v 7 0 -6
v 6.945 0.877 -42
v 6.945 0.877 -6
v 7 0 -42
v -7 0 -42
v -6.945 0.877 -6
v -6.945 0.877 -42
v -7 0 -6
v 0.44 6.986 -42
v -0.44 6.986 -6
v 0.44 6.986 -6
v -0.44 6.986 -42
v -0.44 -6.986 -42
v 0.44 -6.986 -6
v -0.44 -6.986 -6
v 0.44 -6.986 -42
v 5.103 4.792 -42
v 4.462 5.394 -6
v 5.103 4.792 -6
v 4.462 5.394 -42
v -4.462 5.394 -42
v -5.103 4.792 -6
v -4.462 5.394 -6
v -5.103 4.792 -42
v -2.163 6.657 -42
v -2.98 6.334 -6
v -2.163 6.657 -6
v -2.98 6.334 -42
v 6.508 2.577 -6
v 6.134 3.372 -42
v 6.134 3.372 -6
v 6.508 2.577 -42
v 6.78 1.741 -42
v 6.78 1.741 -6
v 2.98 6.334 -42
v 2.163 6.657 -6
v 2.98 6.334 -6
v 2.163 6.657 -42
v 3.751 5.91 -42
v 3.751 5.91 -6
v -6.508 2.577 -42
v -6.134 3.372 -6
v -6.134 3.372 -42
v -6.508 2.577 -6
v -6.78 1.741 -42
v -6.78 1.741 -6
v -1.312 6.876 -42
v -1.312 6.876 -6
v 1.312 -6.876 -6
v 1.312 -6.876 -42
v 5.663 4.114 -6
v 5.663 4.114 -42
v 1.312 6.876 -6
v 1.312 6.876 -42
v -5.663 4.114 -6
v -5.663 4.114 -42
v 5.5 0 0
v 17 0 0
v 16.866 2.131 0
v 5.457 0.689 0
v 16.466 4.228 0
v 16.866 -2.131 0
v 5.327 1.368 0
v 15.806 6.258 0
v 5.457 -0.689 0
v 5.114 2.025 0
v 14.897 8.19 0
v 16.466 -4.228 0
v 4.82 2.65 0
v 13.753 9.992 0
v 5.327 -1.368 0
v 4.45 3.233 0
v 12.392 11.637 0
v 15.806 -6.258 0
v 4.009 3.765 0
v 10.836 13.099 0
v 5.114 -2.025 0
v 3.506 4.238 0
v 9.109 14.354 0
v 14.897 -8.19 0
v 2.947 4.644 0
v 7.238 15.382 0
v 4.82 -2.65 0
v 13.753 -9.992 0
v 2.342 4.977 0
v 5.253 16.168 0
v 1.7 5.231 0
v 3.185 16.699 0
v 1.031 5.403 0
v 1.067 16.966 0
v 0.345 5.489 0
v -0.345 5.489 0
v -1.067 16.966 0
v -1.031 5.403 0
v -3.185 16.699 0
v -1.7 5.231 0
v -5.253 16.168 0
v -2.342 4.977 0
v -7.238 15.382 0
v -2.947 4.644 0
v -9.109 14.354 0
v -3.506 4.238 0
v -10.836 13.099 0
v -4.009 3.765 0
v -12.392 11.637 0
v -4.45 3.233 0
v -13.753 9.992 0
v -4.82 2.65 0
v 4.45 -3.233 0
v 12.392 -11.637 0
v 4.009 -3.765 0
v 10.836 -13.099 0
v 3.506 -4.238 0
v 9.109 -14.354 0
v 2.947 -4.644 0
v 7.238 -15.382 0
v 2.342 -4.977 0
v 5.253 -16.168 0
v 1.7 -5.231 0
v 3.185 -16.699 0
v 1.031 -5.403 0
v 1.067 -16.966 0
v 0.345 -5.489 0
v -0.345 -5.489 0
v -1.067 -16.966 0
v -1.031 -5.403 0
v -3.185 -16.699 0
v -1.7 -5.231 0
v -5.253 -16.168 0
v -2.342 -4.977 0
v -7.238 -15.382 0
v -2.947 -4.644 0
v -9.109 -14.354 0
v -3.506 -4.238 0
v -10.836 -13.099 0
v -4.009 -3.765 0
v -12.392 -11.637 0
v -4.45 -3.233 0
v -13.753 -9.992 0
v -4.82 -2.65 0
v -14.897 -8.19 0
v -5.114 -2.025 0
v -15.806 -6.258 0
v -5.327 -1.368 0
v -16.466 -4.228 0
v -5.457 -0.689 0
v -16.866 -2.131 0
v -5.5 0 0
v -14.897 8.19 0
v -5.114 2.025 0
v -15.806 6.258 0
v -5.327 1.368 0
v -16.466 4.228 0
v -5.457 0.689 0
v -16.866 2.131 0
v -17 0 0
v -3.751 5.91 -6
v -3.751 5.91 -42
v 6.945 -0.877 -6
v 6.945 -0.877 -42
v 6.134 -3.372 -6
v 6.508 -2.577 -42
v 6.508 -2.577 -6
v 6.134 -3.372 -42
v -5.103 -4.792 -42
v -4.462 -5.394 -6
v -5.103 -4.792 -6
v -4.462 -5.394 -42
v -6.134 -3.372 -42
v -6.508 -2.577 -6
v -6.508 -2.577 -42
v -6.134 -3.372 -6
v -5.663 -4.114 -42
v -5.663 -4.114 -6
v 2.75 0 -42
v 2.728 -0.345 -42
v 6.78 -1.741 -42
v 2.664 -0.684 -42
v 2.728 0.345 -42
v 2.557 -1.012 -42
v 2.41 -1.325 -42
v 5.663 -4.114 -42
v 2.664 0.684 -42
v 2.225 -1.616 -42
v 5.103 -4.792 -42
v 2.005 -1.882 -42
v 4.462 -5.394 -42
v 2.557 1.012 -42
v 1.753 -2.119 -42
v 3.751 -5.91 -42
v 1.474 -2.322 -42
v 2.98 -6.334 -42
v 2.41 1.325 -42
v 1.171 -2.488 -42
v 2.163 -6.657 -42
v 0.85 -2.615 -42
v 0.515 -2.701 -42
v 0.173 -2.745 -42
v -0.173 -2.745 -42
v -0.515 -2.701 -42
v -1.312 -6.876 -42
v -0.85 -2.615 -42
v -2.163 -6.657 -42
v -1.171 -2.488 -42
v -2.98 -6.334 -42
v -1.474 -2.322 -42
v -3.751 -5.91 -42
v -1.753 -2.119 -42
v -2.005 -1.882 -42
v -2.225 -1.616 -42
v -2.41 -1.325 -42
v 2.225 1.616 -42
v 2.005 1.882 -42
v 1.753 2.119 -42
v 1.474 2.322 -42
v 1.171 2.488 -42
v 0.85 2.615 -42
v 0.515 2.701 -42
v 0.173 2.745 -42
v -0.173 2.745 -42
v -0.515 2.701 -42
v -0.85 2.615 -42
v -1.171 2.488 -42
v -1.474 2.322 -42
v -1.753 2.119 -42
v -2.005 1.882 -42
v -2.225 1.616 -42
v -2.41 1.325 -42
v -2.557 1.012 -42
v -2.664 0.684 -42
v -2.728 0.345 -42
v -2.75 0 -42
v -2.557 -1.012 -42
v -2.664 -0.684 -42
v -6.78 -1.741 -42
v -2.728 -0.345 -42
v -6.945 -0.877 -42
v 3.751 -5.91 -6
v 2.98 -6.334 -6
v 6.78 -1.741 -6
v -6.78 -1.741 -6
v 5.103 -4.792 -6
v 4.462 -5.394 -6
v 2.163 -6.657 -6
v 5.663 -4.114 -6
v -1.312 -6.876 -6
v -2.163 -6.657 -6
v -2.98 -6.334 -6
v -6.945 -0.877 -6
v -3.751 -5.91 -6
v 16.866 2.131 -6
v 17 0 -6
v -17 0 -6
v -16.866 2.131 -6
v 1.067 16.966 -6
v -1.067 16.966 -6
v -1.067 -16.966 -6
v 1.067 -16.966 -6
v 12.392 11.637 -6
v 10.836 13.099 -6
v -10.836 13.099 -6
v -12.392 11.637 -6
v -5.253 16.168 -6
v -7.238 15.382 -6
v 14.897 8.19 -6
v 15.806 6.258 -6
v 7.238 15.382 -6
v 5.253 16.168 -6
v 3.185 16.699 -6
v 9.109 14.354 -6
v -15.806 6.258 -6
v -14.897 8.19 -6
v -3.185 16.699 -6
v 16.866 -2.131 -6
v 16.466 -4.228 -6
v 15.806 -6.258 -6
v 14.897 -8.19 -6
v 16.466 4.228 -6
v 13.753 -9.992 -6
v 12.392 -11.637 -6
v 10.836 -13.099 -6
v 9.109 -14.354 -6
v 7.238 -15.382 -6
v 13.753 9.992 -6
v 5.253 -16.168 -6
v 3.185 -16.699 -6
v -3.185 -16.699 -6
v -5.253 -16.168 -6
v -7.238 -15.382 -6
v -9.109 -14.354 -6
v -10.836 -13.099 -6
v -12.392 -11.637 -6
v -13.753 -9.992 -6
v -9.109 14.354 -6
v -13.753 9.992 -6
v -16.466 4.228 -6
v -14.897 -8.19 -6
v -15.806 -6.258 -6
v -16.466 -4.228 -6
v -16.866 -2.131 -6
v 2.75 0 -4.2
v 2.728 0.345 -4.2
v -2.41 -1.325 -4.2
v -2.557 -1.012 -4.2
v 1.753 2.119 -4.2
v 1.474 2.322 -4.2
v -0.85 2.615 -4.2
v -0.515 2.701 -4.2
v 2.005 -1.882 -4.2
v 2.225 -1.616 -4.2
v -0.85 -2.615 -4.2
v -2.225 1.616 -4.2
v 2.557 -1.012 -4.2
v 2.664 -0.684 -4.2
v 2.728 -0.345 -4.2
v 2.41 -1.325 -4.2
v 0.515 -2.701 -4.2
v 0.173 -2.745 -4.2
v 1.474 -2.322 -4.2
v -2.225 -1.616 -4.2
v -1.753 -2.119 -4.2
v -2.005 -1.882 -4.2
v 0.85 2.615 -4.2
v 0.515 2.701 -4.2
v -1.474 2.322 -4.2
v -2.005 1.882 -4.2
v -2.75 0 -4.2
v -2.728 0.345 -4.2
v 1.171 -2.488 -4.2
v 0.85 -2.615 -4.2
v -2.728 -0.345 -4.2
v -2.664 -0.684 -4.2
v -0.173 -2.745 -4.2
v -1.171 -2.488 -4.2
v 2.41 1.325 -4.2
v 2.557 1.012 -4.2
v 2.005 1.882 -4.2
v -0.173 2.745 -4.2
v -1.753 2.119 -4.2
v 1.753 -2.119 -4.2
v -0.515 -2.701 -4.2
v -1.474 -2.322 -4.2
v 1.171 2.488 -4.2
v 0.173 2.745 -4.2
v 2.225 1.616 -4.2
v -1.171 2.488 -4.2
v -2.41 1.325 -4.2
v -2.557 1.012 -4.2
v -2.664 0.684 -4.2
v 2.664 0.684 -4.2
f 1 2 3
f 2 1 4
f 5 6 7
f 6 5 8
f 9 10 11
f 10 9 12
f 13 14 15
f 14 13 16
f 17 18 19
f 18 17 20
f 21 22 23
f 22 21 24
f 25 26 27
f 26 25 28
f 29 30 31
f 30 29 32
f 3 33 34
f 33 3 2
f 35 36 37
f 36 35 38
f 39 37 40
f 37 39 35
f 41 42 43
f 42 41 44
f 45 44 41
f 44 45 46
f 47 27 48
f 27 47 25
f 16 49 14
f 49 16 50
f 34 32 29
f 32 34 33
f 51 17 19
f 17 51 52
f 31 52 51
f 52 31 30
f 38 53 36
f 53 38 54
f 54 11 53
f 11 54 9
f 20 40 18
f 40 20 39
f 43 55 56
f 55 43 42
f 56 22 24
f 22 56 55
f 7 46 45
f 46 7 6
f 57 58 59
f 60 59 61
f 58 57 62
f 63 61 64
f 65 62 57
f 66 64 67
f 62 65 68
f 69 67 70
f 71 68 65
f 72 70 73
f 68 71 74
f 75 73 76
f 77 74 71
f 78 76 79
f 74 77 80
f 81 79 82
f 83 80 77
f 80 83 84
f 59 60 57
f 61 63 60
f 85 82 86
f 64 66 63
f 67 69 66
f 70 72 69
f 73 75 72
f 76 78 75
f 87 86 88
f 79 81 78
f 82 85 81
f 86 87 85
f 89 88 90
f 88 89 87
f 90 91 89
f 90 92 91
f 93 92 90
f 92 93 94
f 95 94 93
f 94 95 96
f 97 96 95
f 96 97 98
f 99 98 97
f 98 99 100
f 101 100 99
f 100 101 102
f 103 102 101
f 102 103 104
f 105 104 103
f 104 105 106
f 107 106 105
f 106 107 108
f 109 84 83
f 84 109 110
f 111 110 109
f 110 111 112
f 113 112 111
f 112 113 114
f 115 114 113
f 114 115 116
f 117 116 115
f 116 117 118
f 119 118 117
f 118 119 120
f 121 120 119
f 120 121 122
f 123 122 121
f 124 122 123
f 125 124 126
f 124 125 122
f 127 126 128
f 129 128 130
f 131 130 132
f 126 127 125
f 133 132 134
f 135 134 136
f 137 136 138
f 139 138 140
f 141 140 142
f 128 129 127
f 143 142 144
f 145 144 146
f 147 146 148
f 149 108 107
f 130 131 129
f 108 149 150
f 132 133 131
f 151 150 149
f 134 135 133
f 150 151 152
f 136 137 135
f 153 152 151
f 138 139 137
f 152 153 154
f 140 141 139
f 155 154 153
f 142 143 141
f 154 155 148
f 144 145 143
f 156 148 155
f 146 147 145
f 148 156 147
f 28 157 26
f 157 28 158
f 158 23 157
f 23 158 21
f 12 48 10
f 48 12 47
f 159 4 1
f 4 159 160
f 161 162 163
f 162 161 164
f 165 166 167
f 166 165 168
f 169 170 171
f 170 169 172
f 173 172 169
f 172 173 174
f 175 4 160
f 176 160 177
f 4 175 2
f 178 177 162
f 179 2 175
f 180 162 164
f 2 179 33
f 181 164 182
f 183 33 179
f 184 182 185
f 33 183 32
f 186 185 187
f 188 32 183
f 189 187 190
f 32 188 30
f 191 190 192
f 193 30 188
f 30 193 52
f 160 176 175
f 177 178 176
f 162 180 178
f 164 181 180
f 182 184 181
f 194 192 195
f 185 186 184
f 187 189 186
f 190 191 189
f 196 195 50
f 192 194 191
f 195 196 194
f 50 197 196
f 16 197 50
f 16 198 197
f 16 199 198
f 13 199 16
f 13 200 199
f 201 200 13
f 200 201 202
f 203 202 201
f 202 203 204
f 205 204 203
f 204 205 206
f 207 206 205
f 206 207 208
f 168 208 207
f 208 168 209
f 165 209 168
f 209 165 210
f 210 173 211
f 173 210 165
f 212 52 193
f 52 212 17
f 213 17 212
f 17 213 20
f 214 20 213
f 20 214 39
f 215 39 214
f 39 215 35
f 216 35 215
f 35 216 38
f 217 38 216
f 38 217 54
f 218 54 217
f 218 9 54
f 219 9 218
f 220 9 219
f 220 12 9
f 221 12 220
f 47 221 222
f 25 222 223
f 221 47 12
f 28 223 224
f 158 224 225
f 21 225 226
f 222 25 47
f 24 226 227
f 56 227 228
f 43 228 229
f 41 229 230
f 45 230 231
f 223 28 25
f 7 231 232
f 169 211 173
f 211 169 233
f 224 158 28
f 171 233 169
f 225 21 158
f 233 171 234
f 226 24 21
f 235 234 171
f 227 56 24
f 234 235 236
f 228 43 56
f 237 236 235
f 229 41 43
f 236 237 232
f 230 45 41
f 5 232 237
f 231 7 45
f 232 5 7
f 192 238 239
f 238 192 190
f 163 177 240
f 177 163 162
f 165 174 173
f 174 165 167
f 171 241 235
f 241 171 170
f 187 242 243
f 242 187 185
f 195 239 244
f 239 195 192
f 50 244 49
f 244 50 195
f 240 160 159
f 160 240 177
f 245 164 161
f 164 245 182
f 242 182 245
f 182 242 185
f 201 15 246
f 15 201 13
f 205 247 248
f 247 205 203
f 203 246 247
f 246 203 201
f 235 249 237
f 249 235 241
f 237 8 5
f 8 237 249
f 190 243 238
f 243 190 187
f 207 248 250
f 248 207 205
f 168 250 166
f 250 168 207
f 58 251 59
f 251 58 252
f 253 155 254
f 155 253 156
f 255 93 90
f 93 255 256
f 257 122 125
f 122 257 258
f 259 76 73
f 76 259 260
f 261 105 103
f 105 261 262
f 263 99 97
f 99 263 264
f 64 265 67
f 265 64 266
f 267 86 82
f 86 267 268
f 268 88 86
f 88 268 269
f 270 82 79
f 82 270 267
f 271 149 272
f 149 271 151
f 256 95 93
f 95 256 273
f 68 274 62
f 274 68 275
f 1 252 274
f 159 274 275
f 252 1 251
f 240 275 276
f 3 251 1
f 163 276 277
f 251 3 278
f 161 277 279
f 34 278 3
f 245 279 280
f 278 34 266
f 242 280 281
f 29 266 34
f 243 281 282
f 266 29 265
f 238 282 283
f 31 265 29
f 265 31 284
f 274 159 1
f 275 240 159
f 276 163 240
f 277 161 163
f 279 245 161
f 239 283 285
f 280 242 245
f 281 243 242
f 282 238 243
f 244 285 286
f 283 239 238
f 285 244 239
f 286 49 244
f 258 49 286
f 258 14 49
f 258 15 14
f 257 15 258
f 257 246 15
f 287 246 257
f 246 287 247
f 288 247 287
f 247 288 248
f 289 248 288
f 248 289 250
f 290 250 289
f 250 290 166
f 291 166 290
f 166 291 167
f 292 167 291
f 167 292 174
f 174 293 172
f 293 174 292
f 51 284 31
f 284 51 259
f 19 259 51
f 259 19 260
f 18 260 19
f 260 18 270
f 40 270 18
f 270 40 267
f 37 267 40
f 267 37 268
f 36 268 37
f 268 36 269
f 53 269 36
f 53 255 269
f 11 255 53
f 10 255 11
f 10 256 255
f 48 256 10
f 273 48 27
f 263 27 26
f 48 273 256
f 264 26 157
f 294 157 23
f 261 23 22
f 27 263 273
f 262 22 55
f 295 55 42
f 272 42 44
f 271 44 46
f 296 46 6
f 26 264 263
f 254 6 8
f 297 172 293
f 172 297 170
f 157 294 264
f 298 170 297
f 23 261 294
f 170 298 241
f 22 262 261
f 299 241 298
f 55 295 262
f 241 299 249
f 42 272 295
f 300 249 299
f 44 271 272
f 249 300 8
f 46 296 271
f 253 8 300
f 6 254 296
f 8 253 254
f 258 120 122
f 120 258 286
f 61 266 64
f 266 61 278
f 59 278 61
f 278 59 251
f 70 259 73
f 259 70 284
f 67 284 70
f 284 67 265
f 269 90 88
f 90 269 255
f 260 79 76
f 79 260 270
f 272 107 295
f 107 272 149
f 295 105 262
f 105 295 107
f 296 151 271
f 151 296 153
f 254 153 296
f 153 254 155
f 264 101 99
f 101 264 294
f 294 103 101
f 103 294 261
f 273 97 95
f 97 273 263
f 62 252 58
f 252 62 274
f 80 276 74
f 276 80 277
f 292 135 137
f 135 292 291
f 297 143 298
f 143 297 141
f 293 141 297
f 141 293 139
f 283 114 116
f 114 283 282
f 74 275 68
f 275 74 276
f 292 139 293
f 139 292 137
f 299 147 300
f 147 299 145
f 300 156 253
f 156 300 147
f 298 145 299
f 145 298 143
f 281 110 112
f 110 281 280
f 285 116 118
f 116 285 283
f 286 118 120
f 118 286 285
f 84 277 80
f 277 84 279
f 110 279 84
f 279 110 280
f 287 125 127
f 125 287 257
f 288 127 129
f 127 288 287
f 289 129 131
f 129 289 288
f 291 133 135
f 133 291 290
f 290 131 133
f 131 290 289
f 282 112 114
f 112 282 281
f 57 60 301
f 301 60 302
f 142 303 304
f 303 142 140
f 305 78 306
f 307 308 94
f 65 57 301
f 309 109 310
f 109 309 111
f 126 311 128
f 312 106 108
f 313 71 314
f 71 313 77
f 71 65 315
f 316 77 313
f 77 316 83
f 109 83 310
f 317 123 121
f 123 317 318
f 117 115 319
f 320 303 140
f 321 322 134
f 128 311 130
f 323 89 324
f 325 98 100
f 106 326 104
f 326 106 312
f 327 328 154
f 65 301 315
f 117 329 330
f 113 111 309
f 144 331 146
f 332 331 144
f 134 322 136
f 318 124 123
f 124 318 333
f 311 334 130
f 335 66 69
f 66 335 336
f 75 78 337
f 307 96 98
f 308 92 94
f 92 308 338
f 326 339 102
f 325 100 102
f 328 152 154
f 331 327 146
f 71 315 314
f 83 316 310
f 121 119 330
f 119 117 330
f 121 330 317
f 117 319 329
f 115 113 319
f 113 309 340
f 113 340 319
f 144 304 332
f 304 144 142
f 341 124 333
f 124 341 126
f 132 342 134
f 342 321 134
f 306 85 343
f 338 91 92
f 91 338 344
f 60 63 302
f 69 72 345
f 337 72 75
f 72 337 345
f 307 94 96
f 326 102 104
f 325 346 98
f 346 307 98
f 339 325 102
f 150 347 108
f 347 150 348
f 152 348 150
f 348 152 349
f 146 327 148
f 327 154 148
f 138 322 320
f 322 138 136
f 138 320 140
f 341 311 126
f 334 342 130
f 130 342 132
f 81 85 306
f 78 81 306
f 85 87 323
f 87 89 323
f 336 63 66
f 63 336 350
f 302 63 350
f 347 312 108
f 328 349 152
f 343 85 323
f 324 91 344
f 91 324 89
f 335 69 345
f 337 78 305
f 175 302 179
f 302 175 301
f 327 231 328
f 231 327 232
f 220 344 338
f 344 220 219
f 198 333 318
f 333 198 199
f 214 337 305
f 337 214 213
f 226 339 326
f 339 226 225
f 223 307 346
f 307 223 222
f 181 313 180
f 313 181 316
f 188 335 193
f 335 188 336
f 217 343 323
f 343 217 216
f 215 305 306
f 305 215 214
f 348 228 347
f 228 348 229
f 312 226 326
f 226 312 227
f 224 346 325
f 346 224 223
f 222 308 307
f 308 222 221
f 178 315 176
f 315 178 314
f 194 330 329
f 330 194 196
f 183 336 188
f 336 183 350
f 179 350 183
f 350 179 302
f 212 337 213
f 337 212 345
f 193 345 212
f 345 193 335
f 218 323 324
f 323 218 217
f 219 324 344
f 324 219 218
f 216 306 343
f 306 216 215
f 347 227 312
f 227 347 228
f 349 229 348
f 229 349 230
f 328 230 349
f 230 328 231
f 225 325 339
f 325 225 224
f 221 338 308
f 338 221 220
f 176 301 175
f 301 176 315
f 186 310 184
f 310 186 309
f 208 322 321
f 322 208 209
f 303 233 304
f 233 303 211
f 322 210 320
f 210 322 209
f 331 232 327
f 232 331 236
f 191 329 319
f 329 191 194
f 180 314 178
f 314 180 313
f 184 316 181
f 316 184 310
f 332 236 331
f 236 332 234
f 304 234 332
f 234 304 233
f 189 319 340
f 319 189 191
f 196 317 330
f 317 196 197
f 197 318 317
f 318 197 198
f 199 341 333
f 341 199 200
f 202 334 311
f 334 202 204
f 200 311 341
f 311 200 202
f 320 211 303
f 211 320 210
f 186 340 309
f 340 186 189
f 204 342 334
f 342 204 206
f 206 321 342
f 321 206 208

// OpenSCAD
$fn = 50;


difference() {
	union() {
		translate(v = [0, 0, -42.0000000000]) {
			cylinder(h = 42, r = 7.0000000000);
		}
		translate(v = [0, 0, -6.0000000000]) {
			cylinder(h = 6, r = 17.0000000000);
		}
	}
	union() {
		translate(v = [0, 0, 0]) {
			rotate(a = [0, 0, 0]) {
				difference() {
					union() {
						#translate(v = [0, 0, -42.0000000000]) {
							cylinder(h = 42, r = 2.2500000000);
						}
						#translate(v = [0, 0, -4.2000000000]) {
							cylinder(h = 4.2000000000, r = 7.0000000000, r1 = 2.7500000000, r2 = 5.5000000000);
						}
						#translate(v = [0, 0, -42.0000000000]) {
							cylinder(h = 42, r = 2.7500000000);
						}
						#translate(v = [0, 0, -42.0000000000]) {
							cylinder(h = 42, r = 2.2500000000);
						}
					}
					union();
				}
			}
		}
	}
}
